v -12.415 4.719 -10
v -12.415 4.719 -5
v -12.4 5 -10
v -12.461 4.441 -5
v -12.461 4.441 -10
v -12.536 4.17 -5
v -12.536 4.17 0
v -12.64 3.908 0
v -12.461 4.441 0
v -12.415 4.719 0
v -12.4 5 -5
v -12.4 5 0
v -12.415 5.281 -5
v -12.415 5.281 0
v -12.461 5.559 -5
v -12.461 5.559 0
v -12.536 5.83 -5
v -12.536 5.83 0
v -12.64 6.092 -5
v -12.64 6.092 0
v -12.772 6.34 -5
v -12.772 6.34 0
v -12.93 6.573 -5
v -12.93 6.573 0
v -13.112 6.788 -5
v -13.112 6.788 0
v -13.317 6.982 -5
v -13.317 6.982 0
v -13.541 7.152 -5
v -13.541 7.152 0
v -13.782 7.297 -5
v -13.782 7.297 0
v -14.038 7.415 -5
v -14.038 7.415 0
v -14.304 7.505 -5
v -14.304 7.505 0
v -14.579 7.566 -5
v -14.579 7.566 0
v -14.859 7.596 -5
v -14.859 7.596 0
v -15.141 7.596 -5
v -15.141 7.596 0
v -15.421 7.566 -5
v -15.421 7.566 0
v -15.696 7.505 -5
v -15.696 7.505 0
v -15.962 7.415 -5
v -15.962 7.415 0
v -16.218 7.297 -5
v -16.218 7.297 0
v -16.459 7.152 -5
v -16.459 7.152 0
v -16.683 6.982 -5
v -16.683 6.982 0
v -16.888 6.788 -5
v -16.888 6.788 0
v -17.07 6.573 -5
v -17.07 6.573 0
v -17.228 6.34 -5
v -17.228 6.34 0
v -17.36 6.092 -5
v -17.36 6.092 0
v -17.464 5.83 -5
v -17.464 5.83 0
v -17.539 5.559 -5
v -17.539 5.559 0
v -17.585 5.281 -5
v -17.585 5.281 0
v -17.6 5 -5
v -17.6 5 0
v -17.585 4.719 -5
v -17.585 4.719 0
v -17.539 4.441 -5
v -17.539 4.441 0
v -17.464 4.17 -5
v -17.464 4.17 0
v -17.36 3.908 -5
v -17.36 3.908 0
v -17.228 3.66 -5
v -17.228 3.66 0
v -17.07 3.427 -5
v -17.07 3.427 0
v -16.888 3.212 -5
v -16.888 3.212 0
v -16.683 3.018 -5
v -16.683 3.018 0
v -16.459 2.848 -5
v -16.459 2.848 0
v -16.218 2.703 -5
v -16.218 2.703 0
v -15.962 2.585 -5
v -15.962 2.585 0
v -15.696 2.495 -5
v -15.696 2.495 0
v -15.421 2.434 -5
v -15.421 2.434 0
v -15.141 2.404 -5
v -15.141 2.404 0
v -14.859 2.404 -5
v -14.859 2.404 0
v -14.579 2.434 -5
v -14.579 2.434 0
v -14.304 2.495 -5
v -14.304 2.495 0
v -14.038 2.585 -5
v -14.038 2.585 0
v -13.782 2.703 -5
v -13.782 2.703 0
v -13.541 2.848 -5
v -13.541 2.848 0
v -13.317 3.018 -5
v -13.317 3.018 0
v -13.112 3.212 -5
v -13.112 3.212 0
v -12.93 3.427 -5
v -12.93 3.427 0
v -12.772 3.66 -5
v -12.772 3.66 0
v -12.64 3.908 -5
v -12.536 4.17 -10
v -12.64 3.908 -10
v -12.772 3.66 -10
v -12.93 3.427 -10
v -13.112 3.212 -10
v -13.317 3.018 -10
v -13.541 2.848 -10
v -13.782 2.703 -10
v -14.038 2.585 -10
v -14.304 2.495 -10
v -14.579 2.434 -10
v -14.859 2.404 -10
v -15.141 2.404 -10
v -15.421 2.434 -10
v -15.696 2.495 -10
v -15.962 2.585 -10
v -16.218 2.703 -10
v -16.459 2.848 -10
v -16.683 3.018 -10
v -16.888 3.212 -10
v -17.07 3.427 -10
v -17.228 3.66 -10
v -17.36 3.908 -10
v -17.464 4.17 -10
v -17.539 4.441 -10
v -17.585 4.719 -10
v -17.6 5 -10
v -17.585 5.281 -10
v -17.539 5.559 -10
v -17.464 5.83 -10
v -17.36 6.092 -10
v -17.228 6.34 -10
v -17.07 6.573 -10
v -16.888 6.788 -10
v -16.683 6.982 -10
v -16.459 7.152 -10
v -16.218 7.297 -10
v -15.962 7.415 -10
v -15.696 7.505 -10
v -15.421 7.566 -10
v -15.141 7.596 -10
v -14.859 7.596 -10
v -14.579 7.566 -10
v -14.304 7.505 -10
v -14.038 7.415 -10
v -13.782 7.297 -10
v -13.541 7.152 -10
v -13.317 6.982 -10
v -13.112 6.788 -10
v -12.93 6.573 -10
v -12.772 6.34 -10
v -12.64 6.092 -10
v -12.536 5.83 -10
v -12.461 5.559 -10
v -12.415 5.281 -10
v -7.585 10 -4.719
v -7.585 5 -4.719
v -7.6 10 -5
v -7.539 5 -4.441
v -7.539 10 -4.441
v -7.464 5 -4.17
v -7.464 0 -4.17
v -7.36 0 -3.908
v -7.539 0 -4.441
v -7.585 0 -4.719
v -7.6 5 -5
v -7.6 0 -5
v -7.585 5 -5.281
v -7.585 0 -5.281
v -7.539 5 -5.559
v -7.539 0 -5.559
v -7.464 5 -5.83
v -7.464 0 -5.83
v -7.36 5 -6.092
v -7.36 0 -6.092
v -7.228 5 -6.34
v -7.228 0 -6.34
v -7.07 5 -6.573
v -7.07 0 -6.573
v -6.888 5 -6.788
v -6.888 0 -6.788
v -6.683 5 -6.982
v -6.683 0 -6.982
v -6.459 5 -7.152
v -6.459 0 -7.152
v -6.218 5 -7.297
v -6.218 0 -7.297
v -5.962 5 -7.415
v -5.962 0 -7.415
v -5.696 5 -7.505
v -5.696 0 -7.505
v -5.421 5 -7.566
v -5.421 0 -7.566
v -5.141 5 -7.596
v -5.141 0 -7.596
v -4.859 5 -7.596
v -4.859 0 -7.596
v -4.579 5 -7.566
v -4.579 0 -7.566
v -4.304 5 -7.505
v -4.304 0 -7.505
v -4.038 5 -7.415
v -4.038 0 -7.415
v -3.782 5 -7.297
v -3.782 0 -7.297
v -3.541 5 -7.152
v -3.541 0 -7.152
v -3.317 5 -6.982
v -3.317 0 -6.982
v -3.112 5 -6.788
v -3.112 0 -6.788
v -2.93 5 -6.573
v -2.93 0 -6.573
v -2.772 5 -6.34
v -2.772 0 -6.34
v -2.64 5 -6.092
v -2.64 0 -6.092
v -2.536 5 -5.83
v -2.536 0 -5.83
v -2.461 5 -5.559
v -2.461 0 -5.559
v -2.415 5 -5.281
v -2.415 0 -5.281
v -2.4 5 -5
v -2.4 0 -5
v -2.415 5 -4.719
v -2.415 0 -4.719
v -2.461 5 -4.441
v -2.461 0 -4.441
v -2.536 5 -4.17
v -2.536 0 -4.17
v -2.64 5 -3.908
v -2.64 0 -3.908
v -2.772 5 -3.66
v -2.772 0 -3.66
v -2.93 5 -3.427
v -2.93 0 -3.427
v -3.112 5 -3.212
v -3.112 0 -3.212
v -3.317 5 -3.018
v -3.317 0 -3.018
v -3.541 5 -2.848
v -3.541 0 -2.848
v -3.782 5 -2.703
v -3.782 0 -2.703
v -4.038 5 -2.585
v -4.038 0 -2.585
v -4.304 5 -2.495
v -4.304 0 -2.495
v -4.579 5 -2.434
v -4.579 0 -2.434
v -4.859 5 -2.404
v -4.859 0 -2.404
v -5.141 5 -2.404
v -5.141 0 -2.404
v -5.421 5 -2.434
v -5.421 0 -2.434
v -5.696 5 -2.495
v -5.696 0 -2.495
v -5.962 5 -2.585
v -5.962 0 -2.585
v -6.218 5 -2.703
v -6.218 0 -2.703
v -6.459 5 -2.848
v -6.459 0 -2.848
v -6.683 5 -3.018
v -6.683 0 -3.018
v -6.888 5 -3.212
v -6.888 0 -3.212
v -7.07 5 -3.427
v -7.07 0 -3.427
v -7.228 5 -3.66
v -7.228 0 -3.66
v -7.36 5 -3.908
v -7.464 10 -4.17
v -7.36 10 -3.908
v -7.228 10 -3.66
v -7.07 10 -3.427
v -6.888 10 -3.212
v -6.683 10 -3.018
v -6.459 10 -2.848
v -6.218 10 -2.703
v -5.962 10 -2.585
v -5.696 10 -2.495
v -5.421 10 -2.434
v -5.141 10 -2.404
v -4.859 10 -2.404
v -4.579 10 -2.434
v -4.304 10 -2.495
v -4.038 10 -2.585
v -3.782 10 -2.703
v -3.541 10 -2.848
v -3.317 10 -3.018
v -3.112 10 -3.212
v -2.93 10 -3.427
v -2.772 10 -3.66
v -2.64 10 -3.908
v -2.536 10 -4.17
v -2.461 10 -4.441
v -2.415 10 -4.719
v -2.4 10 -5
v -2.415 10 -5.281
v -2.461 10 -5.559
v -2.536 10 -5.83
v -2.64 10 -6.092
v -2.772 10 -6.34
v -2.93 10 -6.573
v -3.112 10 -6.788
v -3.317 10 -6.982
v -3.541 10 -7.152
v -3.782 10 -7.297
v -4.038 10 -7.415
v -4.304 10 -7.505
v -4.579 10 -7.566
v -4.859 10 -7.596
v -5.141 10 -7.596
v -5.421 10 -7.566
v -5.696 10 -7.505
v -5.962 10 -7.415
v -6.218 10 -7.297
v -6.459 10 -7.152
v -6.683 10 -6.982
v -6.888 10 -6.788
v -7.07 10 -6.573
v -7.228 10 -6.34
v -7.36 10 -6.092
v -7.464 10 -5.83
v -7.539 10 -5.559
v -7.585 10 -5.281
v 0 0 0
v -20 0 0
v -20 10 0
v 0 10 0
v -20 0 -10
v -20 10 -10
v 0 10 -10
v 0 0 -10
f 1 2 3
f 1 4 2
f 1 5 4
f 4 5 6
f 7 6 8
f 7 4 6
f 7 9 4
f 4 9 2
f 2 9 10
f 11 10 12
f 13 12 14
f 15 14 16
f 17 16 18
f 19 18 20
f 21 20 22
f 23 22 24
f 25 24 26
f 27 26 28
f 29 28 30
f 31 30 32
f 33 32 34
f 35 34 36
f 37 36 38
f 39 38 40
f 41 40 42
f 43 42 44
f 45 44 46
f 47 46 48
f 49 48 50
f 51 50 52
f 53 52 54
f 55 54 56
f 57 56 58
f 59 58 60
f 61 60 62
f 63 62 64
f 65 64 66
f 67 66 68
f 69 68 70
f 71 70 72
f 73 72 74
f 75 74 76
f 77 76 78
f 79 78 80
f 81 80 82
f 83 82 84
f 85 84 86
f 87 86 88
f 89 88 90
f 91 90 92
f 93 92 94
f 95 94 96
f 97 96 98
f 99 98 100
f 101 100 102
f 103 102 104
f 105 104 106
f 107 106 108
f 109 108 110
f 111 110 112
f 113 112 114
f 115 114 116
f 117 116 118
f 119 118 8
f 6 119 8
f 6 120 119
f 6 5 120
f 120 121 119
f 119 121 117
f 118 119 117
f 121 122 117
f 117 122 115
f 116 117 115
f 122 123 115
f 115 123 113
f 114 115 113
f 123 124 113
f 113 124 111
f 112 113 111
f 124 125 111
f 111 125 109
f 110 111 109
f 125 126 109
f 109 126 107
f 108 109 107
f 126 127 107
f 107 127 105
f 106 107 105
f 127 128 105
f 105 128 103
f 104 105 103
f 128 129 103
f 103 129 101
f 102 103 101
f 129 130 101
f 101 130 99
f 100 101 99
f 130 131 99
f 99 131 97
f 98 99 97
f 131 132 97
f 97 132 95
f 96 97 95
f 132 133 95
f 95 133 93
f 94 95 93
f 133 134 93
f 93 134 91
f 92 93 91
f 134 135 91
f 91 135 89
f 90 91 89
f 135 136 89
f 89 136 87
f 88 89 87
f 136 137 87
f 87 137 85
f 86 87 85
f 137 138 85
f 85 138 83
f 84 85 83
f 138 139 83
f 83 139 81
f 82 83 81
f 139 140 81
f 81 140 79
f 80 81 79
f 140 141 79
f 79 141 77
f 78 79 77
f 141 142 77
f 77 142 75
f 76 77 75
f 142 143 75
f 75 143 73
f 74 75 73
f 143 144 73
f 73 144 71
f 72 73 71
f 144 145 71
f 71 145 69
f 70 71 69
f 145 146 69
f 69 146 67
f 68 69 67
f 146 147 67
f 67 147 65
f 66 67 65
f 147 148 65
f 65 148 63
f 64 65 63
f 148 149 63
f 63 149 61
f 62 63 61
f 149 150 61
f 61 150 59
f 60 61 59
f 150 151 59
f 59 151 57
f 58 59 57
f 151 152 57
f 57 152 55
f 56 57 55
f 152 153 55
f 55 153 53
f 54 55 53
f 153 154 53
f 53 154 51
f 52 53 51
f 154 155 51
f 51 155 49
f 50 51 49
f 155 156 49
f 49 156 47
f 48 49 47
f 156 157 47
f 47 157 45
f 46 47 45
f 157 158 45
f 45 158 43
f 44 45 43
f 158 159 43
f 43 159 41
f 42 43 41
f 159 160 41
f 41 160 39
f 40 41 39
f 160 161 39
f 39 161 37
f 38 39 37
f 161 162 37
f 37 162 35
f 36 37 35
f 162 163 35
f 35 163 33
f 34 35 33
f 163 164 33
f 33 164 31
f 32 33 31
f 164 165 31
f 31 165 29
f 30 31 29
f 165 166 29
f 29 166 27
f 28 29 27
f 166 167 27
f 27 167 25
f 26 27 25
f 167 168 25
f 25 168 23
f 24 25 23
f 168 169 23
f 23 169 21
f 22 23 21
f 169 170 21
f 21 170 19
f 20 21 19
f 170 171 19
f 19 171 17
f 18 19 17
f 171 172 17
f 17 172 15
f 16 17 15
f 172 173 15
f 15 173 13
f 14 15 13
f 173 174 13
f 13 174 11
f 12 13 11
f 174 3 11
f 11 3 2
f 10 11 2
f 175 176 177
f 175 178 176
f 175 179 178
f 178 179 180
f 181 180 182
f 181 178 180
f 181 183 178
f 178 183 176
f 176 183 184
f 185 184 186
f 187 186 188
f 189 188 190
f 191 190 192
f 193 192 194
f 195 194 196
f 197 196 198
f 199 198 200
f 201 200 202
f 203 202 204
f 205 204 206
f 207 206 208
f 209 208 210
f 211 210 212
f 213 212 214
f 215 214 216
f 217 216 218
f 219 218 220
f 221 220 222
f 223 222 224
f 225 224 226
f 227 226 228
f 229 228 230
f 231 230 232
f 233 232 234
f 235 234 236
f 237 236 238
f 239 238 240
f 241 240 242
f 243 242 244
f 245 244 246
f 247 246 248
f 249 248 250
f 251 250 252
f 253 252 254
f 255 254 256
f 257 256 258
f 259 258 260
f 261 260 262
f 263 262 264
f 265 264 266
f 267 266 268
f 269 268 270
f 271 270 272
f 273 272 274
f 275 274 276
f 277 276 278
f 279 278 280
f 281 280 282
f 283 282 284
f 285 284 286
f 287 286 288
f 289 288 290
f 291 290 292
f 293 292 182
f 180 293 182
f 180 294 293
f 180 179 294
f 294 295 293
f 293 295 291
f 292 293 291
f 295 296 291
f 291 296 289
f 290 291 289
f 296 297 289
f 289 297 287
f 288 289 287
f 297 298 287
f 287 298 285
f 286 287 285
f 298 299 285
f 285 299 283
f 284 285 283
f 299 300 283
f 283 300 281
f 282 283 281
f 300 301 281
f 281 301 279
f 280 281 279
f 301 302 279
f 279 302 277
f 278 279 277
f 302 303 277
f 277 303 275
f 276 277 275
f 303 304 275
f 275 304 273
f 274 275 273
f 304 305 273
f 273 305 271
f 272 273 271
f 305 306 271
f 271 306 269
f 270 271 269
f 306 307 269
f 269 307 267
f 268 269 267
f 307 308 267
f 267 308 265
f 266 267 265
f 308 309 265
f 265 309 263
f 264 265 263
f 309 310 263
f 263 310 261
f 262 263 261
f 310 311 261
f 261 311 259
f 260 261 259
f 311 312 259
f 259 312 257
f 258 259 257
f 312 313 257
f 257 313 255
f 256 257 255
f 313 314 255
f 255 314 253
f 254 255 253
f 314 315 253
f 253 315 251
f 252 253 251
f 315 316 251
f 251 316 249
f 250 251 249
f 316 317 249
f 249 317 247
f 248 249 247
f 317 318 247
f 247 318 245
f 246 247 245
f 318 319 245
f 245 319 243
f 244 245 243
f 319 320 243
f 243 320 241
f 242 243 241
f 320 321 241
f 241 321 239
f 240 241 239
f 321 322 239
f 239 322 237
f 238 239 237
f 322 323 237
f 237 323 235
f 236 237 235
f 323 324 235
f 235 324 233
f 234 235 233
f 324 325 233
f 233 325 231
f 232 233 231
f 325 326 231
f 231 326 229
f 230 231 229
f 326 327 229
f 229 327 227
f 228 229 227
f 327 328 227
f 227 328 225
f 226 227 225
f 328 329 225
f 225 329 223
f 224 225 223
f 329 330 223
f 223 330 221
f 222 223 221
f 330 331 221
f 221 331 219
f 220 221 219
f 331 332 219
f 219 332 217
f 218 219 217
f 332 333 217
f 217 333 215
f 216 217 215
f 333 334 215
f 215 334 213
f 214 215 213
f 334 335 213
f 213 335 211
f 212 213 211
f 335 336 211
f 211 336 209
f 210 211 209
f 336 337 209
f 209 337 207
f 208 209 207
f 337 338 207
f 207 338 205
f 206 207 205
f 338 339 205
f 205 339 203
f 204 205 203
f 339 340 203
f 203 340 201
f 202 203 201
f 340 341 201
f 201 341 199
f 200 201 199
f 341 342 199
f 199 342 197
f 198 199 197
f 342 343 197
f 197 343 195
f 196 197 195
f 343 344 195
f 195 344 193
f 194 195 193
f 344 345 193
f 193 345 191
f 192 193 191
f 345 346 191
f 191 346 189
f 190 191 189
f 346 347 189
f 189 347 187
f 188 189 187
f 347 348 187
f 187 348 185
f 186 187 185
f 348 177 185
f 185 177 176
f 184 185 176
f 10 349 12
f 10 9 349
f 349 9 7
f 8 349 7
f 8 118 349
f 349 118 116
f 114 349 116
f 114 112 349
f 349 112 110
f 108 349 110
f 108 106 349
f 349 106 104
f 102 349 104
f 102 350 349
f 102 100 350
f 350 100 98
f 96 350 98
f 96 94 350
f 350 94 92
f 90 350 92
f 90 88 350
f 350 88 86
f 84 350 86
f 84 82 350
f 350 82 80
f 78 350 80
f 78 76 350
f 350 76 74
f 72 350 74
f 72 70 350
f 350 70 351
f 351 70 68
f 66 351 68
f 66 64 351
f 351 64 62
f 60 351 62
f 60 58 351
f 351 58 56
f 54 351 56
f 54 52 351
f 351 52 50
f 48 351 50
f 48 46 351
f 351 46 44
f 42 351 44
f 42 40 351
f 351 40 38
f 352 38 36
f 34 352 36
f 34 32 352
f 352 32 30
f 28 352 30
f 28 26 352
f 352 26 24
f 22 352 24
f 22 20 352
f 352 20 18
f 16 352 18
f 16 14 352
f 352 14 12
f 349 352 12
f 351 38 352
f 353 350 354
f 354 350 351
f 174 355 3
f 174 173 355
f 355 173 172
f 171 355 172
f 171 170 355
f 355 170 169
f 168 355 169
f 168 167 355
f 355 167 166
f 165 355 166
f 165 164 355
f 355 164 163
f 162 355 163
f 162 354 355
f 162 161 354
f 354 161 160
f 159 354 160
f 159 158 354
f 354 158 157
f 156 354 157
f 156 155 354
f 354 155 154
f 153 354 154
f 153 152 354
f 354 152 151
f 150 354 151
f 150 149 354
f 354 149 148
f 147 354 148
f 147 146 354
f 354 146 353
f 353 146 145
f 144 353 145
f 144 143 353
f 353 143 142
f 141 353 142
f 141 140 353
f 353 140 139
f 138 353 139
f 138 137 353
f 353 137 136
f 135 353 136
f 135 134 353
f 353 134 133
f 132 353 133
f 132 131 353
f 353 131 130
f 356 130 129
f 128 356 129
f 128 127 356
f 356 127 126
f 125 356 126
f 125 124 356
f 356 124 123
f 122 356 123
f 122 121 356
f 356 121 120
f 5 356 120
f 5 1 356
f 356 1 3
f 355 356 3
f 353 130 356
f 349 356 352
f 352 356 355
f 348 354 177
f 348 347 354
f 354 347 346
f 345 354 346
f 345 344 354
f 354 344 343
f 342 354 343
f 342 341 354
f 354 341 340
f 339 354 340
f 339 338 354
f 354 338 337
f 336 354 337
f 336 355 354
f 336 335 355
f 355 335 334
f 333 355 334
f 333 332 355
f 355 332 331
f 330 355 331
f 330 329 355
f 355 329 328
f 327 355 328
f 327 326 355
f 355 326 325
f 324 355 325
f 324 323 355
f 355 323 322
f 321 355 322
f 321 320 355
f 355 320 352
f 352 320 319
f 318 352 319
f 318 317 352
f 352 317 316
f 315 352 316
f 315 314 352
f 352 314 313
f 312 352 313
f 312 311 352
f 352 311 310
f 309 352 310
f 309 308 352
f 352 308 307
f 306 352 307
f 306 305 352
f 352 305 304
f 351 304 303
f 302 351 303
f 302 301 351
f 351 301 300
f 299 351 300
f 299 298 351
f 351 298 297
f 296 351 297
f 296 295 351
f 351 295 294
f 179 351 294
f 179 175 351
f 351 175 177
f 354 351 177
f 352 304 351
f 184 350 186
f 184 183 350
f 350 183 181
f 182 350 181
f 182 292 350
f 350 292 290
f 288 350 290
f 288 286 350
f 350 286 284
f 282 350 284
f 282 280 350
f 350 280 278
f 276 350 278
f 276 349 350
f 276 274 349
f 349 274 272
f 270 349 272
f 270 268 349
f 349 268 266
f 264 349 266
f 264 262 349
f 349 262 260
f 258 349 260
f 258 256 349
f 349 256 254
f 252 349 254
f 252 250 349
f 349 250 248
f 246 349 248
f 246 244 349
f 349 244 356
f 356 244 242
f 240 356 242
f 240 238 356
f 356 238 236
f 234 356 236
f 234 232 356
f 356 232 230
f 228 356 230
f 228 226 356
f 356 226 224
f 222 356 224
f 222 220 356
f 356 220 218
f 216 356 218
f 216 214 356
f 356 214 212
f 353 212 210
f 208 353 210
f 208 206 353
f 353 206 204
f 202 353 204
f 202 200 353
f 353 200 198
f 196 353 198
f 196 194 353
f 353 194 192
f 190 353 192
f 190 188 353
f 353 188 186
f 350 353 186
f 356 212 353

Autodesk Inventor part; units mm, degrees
ref_plane "YZ Plane" through (0, 0, 0) normal (1, 0, 0) x (0, 1, 0)
ref_plane "XZ Plane" through (0, 0, 0) normal (0, 1, 0) x (-1, 0, 0)
ref_plane "XY Plane" through (0, 0, 0) normal (0, 0, 1) x (1, 0, 0)
sketch "Sketch1" plane through (0, 0, 0) normal (0, 1, 0) x (-1, 0, 0)
  line L0 (0, 0) -> (0, -10)
  line L1 (0, -10) -> (20, -10)
  line L2 (20, -10) -> (20, 0)
  line L3 (20, 0) -> (0, 0)
  line L4 (0, -5) -> (5, -5)
  circle A0 centre (5, -5) radius 2.6
  dimension "d0" = 10
  dimension "d1" = 20
  dimension "d2" = 5
  dimension "d3" = 5.2
extrude "Extrusion1" add sketch "Sketch1" along normal blind 10
sketch "Sketch2" plane through (-20, 0, 0) normal (0, 0, 1) x (1, 0, 0)
  line L0 (0, 10) -> (0, 0)
  line L1 (0, 0) -> (0, 10) projected
  line L2 (0, 5) -> (5, 5)
  circle A0 centre (5, 5) radius 2.6
  point P0 (20, 0)
  dimension "d6" = 5
  dimension "d7" = 5.2
extrude "Extrusion2" cut sketch "Sketch2" against normal blind 11
properties part number "roller_joint"
